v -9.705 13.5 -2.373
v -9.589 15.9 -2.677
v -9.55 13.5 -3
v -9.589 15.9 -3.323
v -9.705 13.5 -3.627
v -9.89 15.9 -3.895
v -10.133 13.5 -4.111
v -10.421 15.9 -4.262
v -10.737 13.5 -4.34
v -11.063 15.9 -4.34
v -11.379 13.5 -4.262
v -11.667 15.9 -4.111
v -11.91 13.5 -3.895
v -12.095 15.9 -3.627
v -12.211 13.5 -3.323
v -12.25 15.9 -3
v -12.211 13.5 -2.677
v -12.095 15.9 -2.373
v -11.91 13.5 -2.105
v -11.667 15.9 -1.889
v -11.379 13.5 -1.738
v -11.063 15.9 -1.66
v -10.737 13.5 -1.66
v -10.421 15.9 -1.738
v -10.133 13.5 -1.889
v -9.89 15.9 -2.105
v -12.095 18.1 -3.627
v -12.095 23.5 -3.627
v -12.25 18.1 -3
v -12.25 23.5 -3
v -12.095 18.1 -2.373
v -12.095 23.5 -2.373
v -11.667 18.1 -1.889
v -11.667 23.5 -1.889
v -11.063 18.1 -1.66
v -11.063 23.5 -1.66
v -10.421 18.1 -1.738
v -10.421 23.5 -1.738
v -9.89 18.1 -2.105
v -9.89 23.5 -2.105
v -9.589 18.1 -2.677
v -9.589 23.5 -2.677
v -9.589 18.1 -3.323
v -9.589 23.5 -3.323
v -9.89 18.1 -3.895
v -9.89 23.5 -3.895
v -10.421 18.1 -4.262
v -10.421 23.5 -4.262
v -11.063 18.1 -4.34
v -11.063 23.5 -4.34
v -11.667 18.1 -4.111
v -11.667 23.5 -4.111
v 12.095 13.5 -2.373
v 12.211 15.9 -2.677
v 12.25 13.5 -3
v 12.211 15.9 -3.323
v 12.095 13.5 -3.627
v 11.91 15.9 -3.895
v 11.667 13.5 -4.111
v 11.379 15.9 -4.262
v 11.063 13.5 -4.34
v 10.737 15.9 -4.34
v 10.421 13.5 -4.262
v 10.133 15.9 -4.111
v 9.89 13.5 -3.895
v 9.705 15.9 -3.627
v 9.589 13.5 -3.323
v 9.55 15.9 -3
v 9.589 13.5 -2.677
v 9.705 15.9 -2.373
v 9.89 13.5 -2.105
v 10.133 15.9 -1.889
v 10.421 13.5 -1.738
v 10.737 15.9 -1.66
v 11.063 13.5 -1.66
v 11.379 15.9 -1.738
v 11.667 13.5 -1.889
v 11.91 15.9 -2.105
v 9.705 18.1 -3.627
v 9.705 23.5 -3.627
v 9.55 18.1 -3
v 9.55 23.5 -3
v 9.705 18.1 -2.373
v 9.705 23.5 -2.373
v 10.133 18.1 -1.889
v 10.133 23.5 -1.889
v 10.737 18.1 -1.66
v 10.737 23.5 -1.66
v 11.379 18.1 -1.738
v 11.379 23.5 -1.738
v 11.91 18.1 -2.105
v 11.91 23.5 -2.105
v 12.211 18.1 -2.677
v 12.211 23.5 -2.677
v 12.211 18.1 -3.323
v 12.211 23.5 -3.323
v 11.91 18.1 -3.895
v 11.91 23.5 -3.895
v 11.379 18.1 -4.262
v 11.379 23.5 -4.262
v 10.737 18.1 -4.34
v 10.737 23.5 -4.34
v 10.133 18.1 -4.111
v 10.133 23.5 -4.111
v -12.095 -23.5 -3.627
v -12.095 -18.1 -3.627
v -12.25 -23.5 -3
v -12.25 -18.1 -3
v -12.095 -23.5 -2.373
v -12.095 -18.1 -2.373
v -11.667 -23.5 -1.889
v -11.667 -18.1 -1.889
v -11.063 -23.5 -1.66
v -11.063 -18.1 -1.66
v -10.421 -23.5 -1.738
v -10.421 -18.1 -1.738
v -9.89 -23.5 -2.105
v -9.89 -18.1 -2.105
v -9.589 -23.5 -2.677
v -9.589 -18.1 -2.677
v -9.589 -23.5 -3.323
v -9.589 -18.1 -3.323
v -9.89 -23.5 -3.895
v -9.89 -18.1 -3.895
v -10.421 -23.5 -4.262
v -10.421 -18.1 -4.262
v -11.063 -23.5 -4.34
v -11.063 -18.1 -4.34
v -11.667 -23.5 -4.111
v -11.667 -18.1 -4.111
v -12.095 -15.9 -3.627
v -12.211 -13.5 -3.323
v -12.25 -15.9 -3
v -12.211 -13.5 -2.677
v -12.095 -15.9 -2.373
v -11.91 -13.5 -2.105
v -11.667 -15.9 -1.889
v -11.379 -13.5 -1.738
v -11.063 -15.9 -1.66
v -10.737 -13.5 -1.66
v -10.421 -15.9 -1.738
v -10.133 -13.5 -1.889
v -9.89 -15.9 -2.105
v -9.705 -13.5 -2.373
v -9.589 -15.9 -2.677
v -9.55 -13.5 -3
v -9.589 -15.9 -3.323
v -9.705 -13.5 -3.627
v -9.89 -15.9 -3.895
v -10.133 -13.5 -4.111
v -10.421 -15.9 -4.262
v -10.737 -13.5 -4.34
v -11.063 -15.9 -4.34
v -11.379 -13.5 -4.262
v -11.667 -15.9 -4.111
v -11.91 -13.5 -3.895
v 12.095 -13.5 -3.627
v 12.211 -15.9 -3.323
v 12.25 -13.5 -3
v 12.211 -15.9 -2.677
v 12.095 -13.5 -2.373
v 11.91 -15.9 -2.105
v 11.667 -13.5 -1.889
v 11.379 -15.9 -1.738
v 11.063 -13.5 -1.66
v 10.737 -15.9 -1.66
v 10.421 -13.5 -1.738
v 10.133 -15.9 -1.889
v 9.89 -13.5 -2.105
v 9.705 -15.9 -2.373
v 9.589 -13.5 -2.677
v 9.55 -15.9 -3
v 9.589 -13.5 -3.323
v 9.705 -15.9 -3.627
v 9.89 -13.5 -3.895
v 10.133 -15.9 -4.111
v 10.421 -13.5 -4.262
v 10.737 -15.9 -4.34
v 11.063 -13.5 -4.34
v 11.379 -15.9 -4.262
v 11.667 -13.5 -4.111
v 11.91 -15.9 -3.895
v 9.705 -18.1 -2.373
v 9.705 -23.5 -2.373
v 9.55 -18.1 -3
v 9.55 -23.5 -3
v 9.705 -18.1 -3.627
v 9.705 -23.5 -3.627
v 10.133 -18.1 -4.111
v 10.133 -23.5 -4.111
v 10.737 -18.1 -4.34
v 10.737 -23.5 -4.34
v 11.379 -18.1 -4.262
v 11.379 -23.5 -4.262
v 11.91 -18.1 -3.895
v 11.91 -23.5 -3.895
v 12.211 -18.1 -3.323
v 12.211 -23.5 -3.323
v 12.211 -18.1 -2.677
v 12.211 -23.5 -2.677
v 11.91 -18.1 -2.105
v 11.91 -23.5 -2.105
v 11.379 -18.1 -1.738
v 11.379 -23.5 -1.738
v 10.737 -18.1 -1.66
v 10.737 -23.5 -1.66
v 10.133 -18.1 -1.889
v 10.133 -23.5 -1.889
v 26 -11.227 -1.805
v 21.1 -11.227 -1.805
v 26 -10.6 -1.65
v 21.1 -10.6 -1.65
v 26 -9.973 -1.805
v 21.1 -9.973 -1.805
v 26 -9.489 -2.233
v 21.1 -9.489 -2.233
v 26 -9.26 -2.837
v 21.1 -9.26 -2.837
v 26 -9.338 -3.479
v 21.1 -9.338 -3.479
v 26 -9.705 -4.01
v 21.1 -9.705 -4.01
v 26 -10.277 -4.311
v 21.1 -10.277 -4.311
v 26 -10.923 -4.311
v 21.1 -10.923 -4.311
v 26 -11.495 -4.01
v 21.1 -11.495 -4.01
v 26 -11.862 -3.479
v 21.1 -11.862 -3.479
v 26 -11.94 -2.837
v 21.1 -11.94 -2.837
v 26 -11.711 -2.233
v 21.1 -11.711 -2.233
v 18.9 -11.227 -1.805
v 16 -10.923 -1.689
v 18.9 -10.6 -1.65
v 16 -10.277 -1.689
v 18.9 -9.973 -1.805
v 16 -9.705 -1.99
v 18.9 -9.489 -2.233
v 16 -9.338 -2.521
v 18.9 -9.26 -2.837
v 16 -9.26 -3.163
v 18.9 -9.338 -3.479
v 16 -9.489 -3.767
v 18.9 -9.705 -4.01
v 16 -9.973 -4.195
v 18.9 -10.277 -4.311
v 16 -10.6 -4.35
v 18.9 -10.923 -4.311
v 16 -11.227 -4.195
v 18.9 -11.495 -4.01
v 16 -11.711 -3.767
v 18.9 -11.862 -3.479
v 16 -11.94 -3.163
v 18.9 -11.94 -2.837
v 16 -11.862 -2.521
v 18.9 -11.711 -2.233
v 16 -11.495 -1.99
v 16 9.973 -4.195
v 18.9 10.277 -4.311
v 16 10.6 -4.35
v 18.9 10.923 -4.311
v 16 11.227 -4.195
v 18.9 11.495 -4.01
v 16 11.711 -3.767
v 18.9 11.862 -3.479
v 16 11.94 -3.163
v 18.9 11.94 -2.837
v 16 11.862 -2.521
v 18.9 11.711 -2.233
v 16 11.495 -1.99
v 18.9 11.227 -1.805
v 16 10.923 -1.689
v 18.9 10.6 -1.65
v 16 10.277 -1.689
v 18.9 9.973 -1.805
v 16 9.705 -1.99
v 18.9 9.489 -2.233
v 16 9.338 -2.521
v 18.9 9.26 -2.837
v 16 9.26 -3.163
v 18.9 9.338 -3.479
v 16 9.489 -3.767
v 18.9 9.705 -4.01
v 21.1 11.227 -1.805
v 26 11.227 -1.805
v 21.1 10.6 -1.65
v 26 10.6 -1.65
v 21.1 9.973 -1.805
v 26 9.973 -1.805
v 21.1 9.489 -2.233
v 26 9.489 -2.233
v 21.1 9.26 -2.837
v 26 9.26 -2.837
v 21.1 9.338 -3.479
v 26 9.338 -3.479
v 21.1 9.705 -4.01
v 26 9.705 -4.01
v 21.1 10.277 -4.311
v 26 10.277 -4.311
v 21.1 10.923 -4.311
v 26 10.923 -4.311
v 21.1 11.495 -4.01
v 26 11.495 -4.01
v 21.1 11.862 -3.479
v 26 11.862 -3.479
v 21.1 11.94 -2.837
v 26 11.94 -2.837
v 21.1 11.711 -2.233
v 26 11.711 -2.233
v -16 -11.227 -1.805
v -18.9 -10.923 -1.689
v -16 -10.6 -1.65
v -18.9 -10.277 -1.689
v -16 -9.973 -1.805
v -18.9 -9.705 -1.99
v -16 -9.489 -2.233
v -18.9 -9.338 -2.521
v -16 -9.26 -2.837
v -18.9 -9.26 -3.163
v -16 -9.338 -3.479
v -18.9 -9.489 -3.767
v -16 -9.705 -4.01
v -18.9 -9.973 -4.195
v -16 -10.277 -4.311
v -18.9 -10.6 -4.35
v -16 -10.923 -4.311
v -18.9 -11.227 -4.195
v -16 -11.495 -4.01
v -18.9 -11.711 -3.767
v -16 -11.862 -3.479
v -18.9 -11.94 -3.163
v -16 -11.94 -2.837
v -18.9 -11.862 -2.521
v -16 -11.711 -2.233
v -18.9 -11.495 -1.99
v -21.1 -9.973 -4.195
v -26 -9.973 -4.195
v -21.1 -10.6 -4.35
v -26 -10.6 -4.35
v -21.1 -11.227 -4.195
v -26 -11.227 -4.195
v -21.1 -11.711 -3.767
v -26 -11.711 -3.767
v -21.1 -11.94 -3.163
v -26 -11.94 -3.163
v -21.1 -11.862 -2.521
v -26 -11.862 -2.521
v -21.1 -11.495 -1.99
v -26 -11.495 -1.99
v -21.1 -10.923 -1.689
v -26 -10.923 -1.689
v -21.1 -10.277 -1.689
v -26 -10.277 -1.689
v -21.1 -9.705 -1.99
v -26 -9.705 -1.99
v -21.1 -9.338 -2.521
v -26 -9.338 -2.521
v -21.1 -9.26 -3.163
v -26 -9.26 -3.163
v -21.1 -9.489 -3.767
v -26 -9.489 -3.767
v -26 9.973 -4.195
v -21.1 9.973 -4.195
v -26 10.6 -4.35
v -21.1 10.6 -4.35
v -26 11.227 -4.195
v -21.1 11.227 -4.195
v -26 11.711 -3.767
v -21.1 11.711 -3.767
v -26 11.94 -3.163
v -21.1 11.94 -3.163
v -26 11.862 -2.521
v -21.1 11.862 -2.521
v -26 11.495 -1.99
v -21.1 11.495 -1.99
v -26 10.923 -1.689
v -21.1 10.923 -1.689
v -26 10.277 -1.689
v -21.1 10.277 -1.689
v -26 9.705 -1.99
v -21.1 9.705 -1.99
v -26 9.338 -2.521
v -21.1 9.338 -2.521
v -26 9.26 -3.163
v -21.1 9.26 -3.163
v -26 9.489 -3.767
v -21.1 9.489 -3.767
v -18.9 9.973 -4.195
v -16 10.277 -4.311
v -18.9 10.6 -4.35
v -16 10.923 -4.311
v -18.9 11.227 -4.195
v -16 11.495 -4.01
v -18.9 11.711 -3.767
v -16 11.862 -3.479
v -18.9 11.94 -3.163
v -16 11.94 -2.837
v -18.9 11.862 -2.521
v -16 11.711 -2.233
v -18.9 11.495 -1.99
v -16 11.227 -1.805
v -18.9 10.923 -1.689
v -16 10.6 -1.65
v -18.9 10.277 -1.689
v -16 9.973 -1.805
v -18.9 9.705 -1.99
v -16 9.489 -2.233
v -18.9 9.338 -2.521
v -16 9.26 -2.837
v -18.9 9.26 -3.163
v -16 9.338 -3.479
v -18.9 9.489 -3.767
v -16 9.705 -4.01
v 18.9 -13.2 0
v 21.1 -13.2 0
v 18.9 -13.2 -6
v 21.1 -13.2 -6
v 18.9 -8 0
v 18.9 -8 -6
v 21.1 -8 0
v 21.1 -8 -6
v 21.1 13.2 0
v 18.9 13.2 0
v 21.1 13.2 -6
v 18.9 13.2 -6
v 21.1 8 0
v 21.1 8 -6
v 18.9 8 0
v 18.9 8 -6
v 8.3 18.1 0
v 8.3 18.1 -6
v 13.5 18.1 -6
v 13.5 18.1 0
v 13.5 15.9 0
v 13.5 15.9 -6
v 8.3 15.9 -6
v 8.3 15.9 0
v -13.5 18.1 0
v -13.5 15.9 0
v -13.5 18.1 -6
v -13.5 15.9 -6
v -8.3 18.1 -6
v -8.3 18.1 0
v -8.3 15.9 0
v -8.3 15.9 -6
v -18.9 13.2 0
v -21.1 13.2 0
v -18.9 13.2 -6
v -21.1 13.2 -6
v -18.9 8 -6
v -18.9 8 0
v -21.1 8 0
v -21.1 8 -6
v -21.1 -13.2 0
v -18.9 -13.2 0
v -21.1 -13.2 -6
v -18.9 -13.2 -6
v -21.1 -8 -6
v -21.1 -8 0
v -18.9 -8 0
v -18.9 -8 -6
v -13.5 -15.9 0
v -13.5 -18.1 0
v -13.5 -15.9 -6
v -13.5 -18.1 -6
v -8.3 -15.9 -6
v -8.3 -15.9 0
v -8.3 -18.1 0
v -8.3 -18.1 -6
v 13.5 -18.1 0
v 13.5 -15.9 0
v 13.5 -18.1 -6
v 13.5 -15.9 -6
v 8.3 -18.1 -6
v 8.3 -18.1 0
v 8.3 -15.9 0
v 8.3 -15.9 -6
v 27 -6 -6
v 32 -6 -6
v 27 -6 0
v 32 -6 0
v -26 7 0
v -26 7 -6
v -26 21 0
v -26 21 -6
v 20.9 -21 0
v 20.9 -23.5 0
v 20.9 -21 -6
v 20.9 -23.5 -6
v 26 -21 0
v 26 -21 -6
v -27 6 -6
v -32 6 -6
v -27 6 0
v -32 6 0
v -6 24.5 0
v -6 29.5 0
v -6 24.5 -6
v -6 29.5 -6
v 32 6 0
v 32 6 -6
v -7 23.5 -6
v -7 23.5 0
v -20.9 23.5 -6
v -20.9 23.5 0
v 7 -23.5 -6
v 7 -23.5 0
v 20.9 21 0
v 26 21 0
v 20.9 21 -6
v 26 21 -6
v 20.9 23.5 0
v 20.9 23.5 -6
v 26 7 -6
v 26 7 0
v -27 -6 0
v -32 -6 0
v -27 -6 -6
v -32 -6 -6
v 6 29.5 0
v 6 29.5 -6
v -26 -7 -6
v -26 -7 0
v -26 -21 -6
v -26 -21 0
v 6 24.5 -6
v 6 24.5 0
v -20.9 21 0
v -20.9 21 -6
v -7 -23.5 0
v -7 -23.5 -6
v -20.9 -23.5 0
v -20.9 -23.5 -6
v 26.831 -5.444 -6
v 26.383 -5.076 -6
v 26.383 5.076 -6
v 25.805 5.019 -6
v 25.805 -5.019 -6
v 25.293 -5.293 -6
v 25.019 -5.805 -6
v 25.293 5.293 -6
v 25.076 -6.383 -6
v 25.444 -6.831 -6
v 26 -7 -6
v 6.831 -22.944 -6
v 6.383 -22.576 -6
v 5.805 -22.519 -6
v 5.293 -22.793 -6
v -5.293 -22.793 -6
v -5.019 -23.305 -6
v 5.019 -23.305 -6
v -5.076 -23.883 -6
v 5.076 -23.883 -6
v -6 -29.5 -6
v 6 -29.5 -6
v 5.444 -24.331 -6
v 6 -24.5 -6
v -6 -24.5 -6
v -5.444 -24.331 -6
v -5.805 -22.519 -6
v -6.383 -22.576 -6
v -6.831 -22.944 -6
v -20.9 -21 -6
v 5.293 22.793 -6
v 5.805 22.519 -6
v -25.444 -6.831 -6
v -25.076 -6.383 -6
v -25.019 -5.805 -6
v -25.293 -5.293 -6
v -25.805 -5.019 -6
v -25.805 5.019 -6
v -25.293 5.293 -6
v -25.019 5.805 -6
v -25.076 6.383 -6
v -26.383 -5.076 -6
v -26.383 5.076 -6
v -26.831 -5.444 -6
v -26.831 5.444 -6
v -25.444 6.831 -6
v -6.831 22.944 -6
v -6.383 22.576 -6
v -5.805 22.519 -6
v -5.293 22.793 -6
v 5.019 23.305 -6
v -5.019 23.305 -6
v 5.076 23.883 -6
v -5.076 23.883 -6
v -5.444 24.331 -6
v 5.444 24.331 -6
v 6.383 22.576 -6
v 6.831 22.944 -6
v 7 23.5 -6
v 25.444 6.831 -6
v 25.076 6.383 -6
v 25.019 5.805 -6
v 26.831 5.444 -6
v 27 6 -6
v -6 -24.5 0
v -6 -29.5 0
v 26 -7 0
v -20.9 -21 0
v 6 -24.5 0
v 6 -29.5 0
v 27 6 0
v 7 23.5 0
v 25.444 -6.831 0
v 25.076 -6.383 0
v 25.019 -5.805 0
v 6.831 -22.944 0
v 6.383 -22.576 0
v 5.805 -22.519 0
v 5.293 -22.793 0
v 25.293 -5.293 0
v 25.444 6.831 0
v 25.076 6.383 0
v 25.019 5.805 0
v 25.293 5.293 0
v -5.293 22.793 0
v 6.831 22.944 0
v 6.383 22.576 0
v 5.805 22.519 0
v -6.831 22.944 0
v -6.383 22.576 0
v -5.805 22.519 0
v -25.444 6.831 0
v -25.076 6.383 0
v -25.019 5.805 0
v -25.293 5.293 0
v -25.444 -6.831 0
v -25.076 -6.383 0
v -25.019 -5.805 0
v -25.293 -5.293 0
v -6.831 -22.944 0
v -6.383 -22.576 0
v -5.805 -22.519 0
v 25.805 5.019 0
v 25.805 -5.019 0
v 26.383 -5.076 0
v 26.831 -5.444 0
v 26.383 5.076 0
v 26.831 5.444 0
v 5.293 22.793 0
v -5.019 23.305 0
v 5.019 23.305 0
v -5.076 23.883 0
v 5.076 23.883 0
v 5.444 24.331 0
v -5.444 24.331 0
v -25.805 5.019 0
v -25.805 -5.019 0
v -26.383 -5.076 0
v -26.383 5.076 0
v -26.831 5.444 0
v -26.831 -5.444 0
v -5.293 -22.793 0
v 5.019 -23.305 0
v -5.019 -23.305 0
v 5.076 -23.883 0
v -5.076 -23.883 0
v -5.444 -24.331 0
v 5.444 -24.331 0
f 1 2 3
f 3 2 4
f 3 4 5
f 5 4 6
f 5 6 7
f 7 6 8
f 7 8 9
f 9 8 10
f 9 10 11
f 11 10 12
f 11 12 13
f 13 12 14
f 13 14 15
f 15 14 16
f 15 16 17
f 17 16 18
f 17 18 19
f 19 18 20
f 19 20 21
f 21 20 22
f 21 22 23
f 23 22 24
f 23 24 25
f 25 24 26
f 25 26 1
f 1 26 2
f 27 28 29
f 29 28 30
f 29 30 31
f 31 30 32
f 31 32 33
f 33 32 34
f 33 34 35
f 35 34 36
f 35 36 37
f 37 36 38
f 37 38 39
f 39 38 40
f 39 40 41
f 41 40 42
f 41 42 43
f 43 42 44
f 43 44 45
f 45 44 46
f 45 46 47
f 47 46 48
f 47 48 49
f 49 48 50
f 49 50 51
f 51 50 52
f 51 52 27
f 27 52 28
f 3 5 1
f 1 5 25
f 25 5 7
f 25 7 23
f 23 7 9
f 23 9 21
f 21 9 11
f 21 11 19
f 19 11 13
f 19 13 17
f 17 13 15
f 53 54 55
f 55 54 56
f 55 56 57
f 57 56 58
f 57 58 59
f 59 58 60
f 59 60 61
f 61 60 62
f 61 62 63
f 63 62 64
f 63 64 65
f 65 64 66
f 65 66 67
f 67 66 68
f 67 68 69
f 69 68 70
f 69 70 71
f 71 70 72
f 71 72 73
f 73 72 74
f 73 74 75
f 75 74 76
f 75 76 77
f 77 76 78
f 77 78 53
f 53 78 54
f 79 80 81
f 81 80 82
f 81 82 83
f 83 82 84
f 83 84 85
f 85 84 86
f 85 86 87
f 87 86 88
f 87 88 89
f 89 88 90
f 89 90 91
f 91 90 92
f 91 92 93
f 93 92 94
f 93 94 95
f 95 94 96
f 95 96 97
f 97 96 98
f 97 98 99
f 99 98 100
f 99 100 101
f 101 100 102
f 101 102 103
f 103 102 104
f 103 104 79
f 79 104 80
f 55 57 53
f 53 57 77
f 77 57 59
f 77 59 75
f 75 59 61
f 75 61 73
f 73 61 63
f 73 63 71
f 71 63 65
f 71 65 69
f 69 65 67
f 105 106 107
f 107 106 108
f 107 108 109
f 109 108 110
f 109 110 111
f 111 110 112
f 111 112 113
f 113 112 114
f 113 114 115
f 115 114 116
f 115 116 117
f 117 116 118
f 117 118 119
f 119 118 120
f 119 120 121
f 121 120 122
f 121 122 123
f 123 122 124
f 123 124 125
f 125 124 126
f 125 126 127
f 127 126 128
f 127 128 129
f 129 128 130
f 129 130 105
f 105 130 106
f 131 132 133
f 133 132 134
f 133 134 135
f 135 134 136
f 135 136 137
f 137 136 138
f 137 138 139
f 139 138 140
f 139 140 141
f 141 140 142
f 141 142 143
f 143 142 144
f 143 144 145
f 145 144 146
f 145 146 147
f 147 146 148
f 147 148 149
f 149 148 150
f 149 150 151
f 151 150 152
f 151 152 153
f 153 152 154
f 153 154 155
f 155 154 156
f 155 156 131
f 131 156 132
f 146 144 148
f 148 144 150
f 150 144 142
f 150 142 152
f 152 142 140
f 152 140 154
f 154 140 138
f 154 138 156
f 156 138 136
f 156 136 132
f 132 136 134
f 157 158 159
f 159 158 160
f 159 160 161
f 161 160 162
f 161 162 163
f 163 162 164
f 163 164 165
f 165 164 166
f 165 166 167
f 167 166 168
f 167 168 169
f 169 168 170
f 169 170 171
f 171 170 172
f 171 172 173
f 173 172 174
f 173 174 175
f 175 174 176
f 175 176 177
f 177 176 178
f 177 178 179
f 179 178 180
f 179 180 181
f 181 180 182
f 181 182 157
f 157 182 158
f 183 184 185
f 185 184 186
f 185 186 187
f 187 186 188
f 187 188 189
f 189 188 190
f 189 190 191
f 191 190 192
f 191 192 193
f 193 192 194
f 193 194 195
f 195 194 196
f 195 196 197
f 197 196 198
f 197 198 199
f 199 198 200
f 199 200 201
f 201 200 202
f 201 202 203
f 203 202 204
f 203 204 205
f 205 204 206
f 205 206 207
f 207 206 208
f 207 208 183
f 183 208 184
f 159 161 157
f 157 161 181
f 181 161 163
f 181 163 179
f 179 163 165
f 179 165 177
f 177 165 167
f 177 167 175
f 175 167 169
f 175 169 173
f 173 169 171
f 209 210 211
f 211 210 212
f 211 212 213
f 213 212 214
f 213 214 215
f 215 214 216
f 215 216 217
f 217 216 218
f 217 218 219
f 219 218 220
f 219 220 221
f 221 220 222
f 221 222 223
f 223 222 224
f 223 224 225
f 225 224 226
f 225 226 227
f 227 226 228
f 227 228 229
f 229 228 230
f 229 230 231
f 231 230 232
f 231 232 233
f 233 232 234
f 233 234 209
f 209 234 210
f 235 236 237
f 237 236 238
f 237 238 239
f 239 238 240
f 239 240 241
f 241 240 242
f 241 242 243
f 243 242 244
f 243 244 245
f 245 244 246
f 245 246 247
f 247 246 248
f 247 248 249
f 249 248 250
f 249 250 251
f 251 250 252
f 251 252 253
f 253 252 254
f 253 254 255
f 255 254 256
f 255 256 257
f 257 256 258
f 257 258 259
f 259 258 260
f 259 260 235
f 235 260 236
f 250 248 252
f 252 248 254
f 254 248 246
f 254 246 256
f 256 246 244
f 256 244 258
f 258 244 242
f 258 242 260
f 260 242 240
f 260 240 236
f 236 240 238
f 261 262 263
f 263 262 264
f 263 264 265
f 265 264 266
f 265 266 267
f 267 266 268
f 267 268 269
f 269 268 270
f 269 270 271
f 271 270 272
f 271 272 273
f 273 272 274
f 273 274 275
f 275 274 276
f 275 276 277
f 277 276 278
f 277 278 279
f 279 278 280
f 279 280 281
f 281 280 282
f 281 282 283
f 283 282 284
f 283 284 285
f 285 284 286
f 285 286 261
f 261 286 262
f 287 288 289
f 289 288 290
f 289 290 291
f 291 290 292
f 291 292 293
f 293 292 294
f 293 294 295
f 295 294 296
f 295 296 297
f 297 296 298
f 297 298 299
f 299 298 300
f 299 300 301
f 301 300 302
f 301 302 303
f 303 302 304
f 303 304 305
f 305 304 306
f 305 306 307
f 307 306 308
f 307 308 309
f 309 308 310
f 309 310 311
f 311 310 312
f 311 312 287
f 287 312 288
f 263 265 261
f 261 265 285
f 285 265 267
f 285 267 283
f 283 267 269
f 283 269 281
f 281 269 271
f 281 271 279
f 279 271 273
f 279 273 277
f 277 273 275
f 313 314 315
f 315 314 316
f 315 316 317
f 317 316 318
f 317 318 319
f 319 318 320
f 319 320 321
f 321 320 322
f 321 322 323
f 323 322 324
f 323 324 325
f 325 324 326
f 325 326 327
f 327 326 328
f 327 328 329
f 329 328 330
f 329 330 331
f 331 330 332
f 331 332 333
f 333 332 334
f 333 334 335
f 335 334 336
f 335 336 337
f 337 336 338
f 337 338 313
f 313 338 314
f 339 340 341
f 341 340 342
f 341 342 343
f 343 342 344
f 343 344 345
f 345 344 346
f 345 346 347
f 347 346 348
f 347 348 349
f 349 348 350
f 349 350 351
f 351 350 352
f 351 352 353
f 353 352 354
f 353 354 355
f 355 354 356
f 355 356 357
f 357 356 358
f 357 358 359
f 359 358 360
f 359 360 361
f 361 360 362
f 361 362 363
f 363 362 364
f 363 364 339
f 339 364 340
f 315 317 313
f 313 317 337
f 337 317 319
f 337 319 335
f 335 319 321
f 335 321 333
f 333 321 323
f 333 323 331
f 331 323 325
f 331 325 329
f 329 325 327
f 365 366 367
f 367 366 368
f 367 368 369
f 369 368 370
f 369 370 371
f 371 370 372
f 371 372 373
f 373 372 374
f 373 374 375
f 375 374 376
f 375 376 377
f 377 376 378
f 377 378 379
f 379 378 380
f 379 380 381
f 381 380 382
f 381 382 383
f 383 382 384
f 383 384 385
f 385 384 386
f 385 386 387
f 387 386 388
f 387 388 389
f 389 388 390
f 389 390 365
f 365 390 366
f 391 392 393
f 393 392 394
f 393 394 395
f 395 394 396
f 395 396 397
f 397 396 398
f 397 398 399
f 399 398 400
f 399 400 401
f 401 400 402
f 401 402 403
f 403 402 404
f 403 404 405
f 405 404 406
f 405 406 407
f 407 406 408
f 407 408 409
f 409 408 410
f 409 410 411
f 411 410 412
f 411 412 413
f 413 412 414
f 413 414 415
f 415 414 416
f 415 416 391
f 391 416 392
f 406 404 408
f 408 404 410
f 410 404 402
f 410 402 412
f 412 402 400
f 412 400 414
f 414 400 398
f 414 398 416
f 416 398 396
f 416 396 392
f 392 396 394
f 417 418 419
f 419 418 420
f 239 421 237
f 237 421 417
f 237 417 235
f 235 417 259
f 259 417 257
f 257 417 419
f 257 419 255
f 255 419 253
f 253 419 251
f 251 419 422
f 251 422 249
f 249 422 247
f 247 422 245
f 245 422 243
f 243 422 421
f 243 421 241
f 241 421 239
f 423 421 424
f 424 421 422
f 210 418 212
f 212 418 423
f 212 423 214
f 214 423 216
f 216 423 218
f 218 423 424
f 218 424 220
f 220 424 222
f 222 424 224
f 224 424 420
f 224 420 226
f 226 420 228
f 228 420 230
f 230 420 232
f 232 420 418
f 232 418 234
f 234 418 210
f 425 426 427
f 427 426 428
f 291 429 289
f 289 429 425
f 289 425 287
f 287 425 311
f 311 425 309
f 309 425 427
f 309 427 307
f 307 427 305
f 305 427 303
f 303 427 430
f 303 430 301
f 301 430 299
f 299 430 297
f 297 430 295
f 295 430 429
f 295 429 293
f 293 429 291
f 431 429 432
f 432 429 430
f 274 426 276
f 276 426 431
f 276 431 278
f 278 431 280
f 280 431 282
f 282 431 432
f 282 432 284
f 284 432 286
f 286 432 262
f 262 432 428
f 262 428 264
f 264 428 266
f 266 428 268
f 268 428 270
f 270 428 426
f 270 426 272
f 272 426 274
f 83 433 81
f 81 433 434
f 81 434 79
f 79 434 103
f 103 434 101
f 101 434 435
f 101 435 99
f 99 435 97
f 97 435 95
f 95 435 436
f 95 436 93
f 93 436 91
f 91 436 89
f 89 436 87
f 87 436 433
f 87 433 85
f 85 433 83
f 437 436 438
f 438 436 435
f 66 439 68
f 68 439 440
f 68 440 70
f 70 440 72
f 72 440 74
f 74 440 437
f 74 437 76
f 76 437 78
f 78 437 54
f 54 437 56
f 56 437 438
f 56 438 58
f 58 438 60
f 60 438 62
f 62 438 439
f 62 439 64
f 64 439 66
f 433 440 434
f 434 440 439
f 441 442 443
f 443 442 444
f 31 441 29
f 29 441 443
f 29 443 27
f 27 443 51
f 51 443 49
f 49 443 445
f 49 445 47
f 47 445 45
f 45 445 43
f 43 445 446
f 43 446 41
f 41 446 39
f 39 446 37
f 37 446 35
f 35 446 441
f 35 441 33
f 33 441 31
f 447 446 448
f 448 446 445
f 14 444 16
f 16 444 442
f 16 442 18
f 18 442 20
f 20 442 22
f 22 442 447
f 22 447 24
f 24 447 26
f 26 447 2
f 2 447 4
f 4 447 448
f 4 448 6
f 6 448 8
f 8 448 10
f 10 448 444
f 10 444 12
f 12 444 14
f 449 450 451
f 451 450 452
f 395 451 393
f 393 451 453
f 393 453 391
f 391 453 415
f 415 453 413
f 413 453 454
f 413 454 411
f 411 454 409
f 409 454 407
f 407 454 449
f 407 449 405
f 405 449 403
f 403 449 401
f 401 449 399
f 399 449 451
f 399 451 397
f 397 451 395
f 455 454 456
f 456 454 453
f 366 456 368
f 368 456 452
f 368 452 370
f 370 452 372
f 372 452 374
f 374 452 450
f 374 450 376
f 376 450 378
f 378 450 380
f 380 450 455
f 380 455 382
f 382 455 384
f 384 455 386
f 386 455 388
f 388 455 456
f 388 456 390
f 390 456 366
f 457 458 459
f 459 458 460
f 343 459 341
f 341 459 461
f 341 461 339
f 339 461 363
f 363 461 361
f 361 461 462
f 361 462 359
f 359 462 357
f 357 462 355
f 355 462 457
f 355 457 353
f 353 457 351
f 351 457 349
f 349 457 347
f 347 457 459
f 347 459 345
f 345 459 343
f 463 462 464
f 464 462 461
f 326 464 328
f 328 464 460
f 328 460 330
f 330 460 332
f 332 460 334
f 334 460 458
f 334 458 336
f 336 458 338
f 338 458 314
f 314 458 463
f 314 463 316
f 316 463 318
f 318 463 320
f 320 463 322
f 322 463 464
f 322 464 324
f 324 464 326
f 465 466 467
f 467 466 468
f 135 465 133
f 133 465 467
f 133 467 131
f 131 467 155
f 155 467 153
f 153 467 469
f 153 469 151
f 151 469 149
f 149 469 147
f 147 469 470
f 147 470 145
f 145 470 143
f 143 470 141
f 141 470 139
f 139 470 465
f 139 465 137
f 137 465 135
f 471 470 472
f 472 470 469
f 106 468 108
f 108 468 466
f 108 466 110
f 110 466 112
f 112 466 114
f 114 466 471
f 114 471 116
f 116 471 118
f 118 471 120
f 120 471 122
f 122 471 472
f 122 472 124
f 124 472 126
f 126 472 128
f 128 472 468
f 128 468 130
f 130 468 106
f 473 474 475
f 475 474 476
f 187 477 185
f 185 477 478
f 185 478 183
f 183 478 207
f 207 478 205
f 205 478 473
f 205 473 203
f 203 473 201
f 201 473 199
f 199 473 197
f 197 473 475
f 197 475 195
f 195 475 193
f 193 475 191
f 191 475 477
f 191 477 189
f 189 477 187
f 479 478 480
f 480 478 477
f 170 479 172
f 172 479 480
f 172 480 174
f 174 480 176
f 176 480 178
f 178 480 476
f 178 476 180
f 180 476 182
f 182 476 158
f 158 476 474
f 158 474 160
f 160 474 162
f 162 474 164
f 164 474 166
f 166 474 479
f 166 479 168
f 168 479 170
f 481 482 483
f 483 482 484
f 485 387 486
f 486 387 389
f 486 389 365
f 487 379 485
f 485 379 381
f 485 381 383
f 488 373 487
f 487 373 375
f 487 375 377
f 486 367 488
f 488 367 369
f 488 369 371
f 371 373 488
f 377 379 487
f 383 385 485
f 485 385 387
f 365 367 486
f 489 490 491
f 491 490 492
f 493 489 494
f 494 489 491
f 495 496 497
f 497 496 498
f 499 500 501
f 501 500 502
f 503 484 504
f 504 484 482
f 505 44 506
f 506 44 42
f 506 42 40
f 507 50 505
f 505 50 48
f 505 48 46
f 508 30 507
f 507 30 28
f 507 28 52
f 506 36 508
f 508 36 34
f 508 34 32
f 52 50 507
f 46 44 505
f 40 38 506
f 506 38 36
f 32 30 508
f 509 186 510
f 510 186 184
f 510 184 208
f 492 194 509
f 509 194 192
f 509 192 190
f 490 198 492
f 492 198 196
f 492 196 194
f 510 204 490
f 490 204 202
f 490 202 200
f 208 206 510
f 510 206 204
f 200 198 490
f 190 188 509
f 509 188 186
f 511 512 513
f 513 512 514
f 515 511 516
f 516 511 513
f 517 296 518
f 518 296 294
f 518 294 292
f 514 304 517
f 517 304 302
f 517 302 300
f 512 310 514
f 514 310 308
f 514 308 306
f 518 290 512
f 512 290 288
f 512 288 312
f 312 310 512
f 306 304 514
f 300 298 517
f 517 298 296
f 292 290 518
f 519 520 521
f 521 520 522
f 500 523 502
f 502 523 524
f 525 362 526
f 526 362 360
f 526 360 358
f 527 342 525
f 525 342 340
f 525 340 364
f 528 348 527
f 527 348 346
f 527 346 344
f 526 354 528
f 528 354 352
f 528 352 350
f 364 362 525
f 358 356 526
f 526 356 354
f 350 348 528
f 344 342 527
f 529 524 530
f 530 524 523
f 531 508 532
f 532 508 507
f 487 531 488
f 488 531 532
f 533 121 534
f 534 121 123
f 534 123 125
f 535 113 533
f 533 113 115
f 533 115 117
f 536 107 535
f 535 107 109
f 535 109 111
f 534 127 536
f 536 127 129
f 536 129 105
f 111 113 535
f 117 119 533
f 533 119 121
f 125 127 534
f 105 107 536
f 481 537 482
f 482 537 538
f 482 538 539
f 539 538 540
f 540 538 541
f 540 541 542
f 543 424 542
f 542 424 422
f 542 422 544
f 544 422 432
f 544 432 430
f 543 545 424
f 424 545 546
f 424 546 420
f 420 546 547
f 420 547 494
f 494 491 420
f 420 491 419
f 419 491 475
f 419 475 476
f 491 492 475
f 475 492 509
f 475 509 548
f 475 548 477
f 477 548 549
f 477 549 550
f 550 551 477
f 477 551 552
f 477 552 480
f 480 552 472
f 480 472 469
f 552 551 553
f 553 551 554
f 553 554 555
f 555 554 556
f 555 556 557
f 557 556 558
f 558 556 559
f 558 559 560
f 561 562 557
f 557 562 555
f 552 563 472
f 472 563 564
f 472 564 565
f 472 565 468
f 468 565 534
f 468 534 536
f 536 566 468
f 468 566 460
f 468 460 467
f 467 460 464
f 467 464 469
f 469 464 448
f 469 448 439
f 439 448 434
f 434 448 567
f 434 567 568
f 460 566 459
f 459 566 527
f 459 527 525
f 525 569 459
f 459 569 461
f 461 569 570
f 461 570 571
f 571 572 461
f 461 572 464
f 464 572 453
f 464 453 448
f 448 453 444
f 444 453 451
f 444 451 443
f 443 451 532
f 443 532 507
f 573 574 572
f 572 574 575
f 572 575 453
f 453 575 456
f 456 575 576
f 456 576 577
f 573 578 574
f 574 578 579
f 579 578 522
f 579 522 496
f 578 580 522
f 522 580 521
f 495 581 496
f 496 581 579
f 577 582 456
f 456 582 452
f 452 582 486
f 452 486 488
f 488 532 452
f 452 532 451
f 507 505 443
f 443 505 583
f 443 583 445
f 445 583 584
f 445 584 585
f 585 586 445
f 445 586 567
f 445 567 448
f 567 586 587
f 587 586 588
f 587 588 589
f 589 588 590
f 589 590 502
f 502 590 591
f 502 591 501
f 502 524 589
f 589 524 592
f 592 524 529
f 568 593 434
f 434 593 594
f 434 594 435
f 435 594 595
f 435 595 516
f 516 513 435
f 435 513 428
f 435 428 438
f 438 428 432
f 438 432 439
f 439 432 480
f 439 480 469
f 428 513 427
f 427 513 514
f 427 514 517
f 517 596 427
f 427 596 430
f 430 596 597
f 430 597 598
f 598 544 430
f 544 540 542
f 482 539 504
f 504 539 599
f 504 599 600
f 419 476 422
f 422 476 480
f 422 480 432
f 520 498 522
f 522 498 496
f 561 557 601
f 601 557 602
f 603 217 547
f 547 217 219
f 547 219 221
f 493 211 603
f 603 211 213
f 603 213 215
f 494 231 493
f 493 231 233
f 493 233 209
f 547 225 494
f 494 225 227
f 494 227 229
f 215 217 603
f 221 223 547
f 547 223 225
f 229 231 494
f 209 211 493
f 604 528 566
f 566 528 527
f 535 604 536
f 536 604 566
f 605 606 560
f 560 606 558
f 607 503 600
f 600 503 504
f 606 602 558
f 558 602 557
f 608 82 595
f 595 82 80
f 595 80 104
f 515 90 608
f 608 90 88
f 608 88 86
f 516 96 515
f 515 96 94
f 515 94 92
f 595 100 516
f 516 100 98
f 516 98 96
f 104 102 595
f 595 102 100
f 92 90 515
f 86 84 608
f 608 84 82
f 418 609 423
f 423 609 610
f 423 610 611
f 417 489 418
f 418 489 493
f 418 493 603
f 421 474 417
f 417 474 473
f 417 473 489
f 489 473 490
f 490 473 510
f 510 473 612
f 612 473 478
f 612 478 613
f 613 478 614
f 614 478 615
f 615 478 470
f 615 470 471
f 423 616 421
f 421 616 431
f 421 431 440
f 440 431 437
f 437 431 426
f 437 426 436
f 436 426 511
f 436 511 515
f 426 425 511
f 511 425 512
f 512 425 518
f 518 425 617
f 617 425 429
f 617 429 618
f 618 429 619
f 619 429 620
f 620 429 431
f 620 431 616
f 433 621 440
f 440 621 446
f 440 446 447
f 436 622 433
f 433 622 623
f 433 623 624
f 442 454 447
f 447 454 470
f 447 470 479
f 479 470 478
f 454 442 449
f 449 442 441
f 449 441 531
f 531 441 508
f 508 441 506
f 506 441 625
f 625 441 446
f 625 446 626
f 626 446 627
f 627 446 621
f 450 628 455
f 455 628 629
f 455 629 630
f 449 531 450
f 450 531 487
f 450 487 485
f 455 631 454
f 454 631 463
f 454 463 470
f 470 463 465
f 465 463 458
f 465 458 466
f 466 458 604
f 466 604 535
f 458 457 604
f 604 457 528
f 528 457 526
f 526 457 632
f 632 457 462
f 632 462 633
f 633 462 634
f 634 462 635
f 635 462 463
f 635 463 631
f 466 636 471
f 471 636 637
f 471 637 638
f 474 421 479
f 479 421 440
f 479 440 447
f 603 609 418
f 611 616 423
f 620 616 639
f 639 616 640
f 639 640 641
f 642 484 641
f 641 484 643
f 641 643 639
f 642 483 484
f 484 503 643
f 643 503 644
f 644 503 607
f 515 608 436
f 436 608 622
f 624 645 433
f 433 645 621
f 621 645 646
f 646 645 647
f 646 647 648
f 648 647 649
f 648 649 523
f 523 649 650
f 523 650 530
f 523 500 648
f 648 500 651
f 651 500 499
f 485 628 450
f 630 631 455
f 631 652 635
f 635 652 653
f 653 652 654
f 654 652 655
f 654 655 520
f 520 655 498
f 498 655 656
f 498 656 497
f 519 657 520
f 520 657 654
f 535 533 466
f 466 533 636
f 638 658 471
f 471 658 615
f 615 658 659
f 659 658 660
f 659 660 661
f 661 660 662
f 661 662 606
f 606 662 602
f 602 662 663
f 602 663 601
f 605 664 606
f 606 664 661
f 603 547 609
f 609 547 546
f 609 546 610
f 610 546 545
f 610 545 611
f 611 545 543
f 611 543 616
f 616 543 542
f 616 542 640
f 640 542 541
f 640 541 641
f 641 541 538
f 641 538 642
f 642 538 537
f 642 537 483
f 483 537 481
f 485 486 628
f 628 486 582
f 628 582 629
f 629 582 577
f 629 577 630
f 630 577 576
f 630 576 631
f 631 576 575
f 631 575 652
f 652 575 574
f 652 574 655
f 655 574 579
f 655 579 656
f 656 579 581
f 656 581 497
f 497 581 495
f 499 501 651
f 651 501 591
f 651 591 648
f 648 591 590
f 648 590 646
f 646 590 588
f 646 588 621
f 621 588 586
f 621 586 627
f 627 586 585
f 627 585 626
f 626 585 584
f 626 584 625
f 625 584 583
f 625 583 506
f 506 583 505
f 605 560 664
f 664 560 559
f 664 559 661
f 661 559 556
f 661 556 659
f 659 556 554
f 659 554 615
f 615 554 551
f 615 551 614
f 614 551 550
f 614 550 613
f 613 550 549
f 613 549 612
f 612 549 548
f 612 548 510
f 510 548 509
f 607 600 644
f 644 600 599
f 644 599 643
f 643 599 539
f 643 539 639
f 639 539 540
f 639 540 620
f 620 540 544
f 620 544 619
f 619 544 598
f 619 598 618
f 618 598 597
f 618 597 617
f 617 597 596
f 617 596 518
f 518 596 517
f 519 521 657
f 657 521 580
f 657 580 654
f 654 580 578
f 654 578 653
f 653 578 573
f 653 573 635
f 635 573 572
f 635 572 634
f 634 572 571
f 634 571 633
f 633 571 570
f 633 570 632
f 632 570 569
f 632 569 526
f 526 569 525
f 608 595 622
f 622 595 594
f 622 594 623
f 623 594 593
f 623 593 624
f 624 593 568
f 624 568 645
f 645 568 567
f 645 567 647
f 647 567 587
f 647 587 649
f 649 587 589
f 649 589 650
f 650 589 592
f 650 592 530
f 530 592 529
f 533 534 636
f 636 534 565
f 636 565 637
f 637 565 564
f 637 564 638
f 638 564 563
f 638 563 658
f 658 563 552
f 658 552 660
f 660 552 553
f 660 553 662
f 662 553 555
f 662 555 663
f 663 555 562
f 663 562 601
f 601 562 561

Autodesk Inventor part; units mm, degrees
ref_plane "YZ Plane" through (0, 0, 0) normal (1, 0, 0) x (0, 1, 0)
ref_plane "XZ Plane" through (0, 0, 0) normal (0, 1, 0) x (-1, 0, 0)
ref_plane "XY Plane" through (0, 0, 0) normal (0, 0, 1) x (1, 0, 0)
ref_plane "작업 평면1" through (0, 0, 0) normal (0, 0, 1) x (1, 0, 0)
sketch "스케치1" plane through (0, 0, 0) normal (0, 0, 1) x (1, 0, 0)
  line L0 (-18.9, 5.4) -> (-21.1, 5.4) projected
  line L1 (-21.1, 5.4) -> (-21.1, 10.6) projected
  line L2 (-21.1, 10.6) -> (-18.9, 10.6) projected
  line L3 (-18.9, 10.6) -> (-18.9, 5.4) projected
  line L4 (-21.1, -5.4) -> (-18.9, -5.4) projected
  line L5 (-18.9, -5.4) -> (-18.9, -10.6) projected
  line L6 (-18.9, -10.6) -> (-21.1, -10.6) projected
  line L7 (-21.1, -10.6) -> (-21.1, -5.4) projected
  line L8 (21.1, 5.4) -> (18.9, 5.4) projected
  line L9 (18.9, 5.4) -> (18.9, 10.6) projected
  line L10 (18.9, 10.6) -> (21.1, 10.6) projected
  line L11 (21.1, 10.6) -> (21.1, 5.4) projected
  line L12 (18.9, -10.6) -> (18.9, -5.4) projected
  line L13 (18.9, -5.4) -> (21.1, -5.4) projected
  line L14 (21.1, -5.4) -> (21.1, -10.6) projected
  line L15 (21.1, -10.6) -> (18.9, -10.6) projected
  circle A0 centre (8, -8) radius 1.35 projected
  circle A1 centre (-8, 8) radius 1.35 projected
  circle A2 centre (-8, -8) radius 1.35 projected
  circle A3 centre (8, 8) radius 1.35 projected
  line L16 (-26, 14) -> (-26, 3) projected
  line L17 (-26, 3) -> (-32, 3) projected
  line L18 (-32, 3) -> (-32, -3) projected
  line L19 (-32, -3) -> (-26, -3) projected
  line L20 (-26, -3) -> (-26, -14) projected
  line L21 (-26, -14) -> (26, -14) projected
  line L22 (26, -14) -> (26, -3) projected
  line L23 (26, -3) -> (32, -3) projected
  line L24 (32, -3) -> (32, 3) projected
  line L25 (32, 3) -> (26, 3) projected
  line L26 (26, 3) -> (26, 14) projected
  line L27 (26, 14) -> (-26, 14) projected
  line L28 (-11, -15.5) -> (-5, -15.5) projected
  line L29 (-5, -15.5) -> (-5, -18.5) projected
  line L30 (-5, -18.5) -> (-11, -18.5) projected
  line L31 (-11, -18.5) -> (-11, -15.5) projected
  line L32 (-5, 15.5) -> (-11, 15.5) projected
  line L33 (-11, 15.5) -> (-11, 18.5) projected
  line L34 (-11, 18.5) -> (-5, 18.5) projected
  line L35 (-5, 18.5) -> (-5, 15.5) projected
  line L36 (11, -18.5) -> (5, -18.5) projected
  line L37 (5, -18.5) -> (5, -15.5) projected
  line L38 (5, -15.5) -> (11, -15.5) projected
  line L39 (11, -15.5) -> (11, -18.5) projected
  line L40 (11, 15.0547) -> (5, 15.0547) projected
  line L41 (5, 15.0547) -> (5, 18.0547) projected
  line L42 (5, 18.0547) -> (11, 18.0547) projected
  line L43 (11, 18.0547) -> (11, 15.0547) projected
  circle A4 centre (8, 8) radius 1.35 projected
  circle A5 centre (-8, -8) radius 1.35 projected
  circle A6 centre (-8, 8) radius 1.35 projected
  circle A7 centre (8, -8) radius 1.35 projected
  line L44 (13.9, 23.5) -> (3, 23.5) projected
  line L45 (3, 23.5) -> (3, 29.5) projected
  line L46 (3, 29.5) -> (-3, 29.5) projected
  line L47 (-3, 29.5) -> (-3, 23.5) projected
  line L48 (-3, 23.5) -> (-13.9, 23.5) projected
  line L49 (-13.9, 23.5) -> (-13.9, -23.5) projected
  line L50 (-13.9, -23.5) -> (-3, -23.5) projected
  line L51 (-3, -23.5) -> (-3, -29.5) projected
  line L52 (-3, -29.5) -> (3, -29.5) projected
  line L53 (3, -29.5) -> (3, -23.5) projected
  line L54 (3, -23.5) -> (13.9, -23.5) projected
  line L55 (13.9, -23.5) -> (13.9, 23.5) projected
  line L56 (13.9, 23.5) -> (-13.9, 23.5)
  line L57 (-13.9, -23.5) -> (13.9, -23.5)
  line L58 (-26, 14) -> (-26, -14)
  line L59 (26, -14) -> (26, 14)
  line L60 (-26, -14) -> (-26, -21)
  line L61 (26, -21) -> (26, -14)
  line L62 (26, 14) -> (26, 21)
  line L63 (-26, 21) -> (-26, 14)
  line L64 (13.9, -23.5) -> (20.9, -23.5)
  line L65 (20.9, 23.5) -> (13.9, 23.5)
  line L66 (-13.9, 23.5) -> (-20.9, 23.5)
  line L67 (-20.9, -23.5) -> (-13.9, -23.5)
  line L68 (26, 21) -> (20.9, 21)
  line L69 (-20.9, 21) -> (-26, 21)
  line L70 (-20.9, -21) -> (-20.9, -23.5)
  line L71 (-20.9, 23.5) -> (-20.9, 21)
  line L72 (20.9, -23.5) -> (20.9, -21)
  line L73 (20.9, 21) -> (20.9, 23.5)
  line L74 (-26, -21) -> (-20.9, -21)
  line L75 (20.9, -21) -> (26, -21)
  line L76 (26, -5.994) -> (26, 6.006)
  line L77 (6, -23.5) -> (-6, -23.5)
  line L78 (-6, -23.5) -> (-6, -29.5)
  line L79 (-6, -29.5) -> (6, -29.5)
  line L80 (6, -29.5) -> (6, -23.5)
  line L81 (6, 23.5) -> (-6, 23.5)
  line L82 (-6, 23.5) -> (-6, 29.5)
  line L83 (-6, 29.5) -> (6, 29.5)
  line L84 (6, 29.5) -> (6, 23.5)
  line L85 (-26, 6) -> (-32, 6)
  line L86 (-32, 6) -> (-32, -6)
  line L87 (-32, -6) -> (-26, -6)
  line L88 (-26, -6) -> (-26, 6)
  line L89 (13.5, 18.1) -> (8.3, 18.1)
  line L90 (8.3, 18.1) -> (8.3, 15.9)
  line L91 (8.3, 15.9) -> (13.5, 15.9)
  line L92 (13.5, 15.9) -> (13.5, 18.1)
  line L93 (13.5, 18.1) -> (8.3, 15.9) construction
  line L94 (8.3, 18.1) -> (13.5, 15.9) construction
  line L95 (-13.5, 18.1) -> (-8.3, 18.1)
  line L96 (-8.3, 18.1) -> (-8.3, 15.9)
  line L97 (-8.3, 15.9) -> (-13.5, 15.9)
  line L98 (-13.5, 15.9) -> (-13.5, 18.1)
  line L99 (-13.5, 18.1) -> (-8.3, 15.9) construction
  line L100 (-8.3, 18.1) -> (-13.5, 15.9) construction
  line L101 (-13.5, -18.1) -> (-8.3, -18.1)
  line L102 (-8.3, -18.1) -> (-8.3, -15.9)
  line L103 (-8.3, -15.9) -> (-13.5, -15.9)
  line L104 (-13.5, -15.9) -> (-13.5, -18.1)
  line L105 (-13.5, -18.1) -> (-8.3, -15.9) construction
  line L106 (-8.3, -18.1) -> (-13.5, -15.9) construction
  line L107 (13.5, -15.9) -> (8.3, -15.9)
  line L108 (8.3, -15.9) -> (8.3, -18.1)
  line L109 (8.3, -18.1) -> (13.5, -18.1)
  line L110 (13.5, -18.1) -> (13.5, -15.9)
  line L111 (13.5, -15.9) -> (8.3, -18.1) construction
  line L112 (8.3, -15.9) -> (13.5, -18.1) construction
  line L113 (-21.1, -8) -> (-18.9, -8)
  line L114 (-18.9, -8) -> (-18.9, -13.2)
  line L115 (-18.9, -13.2) -> (-21.1, -13.2)
  line L116 (-21.1, -13.2) -> (-21.1, -8)
  line L117 (-21.1, -8) -> (-18.9, -13.2) construction
  line L118 (-18.9, -8) -> (-21.1, -13.2) construction
  line L119 (-21.1, 13.2) -> (-18.9, 13.2)
  line L120 (-18.9, 13.2) -> (-18.9, 8)
  line L121 (-18.9, 8) -> (-21.1, 8)
  line L122 (-21.1, 8) -> (-21.1, 13.2)
  line L123 (-21.1, 13.2) -> (-18.9, 8) construction
  line L124 (-18.9, 13.2) -> (-21.1, 8) construction
  line L125 (26, -5.994) -> (26, 6.006)
  line L126 (26, 6) -> (32, 6)
  line L127 (32, 6) -> (32, -6)
  line L128 (32, -6) -> (26, -6)
  line L129 (26, -6) -> (26, 6)
  line L130 (18.9, -8) -> (21.1, -8)
  line L131 (21.1, -8) -> (21.1, -13.2)
  line L132 (21.1, -13.2) -> (18.9, -13.2)
  line L133 (18.9, -13.2) -> (18.9, -8)
  line L134 (18.9, -8) -> (21.1, -13.2) construction
  line L135 (21.1, -8) -> (18.9, -13.2) construction
  line L136 (18.9, 13.2) -> (21.1, 13.2)
  line L137 (21.1, 13.2) -> (21.1, 8)
  line L138 (21.1, 8) -> (18.9, 8)
  line L139 (18.9, 8) -> (18.9, 13.2)
  line L140 (18.9, 13.2) -> (21.1, 8) construction
  line L141 (21.1, 13.2) -> (18.9, 8) construction
  point P0 (0, 0)
  point P1 (10.9, 17)
  point P2 (-10.9, 17)
  point P3 (-10.9, -17)
  point P4 (10.9, -17)
  point P5 (-20, -10.6)
  point P6 (-20, 10.6)
  point P7 (8.3, 18.0547)
  point P8 (11, 15.9)
  point P9 (-13.9, -14)
  point P10 (13.9, -14)
  point P11 (20, -10.6)
  point P12 (20, 10.6)
  dimension "d0" = 7
  dimension "d1" = 7
  dimension "d2" = 7
  dimension "d5" = 12
  dimension "d6" = 6
  dimension "d7" = 12
  dimension "d8" = 6
  dimension "d9" = 12
  dimension "d31" = 5.2
  dimension "d33" = 5.2
  dimension "d34" = 2.2
  dimension "d35" = 5.2
  dimension "d36" = 2.2
  dimension "d37" = 5.2
  dimension "d38" = 2.2
  dimension "d41" = 2.2
  dimension "d42" = 5.2
  dimension "d44" = 2.2
  dimension "d45" = 5.2
  dimension "d69" = 12
  dimension "d70" = 5.2
  dimension "d71" = 2.2
  dimension "d72" = 5.2
extrude "돌출9" add sketch "스케치1" against normal blind 6 contours L0 L1 L121 L3 | L4 L5 L113 L7 | L8 L9 L138 L11 | L12 L13 L14 L130 | A0 | A1 | A2 | A3 | L27 L49 L21 L20 L58 L16 | L63 L69 L71 L66 L49 L27 | L16 L17 L86 L85 | L49 L48 L56 L44 L55 L27 | L27 L55 L21 L49 | L58 L19 L18 L17 | L55 L65 L73 L68 L62 L27 | L27 L26 L59 L22 L21 L55 | L49 L67 L70 L74 L60 L21 | L21 L55 L54 L57 L50 L49 | L20 L87 L86 L19 | L21 L61 L75 L72 L64 L55 | L82 L83 L47 L48 | L44 L45 L83 L84 | L47 L46 L45 L56 | L50 L51 L79 L78 | L126 L127 L25 L26 | L22 L23 L127 L128 | L80 L79 L53 L54 | L57 L53 L52 L51 | L25 L24 L23 L59 | L28 L29 L30 L31 L101 L102 L103 | L32 L33 L97 L96 L95 L34 L35 | L36 L37 L38 L39 L107 L108 L109 | L40 L41 L42 L90 L91 L43
sketch "스케치7" plane through (-32, -6, 0) normal (-1, 0, 0) x (0, 0, 1)
  line L0 (0, 19.2) -> (0, 14)
  circle A0 centre (-3, 16.6) radius 1.35
  line L1 (0, -2) -> (0, -7.2)
  circle A1 centre (-3, -4.6) radius 1.35
  point P0 (0, 6)
  dimension "d75" = 2.7
  dimension "d76" = 2.7
extrude "돌출10" cut sketch "스케치7" against normal blind 16
sketch "스케치8" plane through (32, -6, 0) normal (1, 0, 0) x (0, 0, -1)
  line L0 (6, 19.2) -> (6, 14)
  line L1 (6, -2) -> (6, -7.2)
  circle A0 centre (3, 16.6) radius 1.35
  circle A1 centre (3, -4.6) radius 1.35
  point P0 (0, 6)
  dimension "d79" = 2.7
  dimension "d80" = 2.7
extrude "돌출11" cut sketch "스케치8" against normal blind 16
sketch "스케치9" plane through (-6, -29.5, 0) normal (0, -1, 0) x (1, 0, 0)
  line L0 (19.5, -6) -> (14.3, -6)
  line L1 (-2.3, -6) -> (-7.5, -6)
  circle A0 centre (16.9, -3) radius 1.35
  circle A1 centre (-4.9, -3) radius 1.35
  point P0 (6, 0)
  dimension "d83" = 2.7
  dimension "d84" = 2.7
extrude "돌출12" cut sketch "스케치9" against normal blind 16
sketch "스케치10" plane through (-6, 29.5, 0) normal (0, 1, 0) x (1, 0, 0)
  line L0 (19.5, 0) -> (14.3, 0)
  line L1 (-2.3, 0) -> (-7.5, 0)
  circle A0 centre (-4.9, 3) radius 1.35
  circle A1 centre (16.9, 3) radius 1.35
  point P0 (6, 0)
  dimension "d87" = 2.7
  dimension "d88" = 2.7
extrude "돌출13" cut sketch "스케치10" against normal blind 16
sketch "스케치11" plane through (0, 0, 0) normal (0, 0, 1) x (1, 0, 0)
  line L0 (-6, -29.5) -> (6, -29.5) projected
  line L1 (6, -29.5) -> (6, -23.5) projected
  line L2 (6, -23.5) -> (20.9, -23.5) projected
  line L3 (20.9, -23.5) -> (20.9, -21) projected
  line L4 (20.9, -21) -> (26, -21) projected
  line L5 (26, -21) -> (26, -6) projected
  line L6 (26, -6) -> (32, -6) projected
  line L7 (32, -6) -> (32, 6) projected
  line L8 (32, 6) -> (26, 6) projected
  line L9 (26, 6) -> (26, 21) projected
  line L10 (26, 21) -> (20.9, 21) projected
  line L11 (20.9, 21) -> (20.9, 23.5) projected
  line L12 (20.9, 23.5) -> (6, 23.5) projected
  line L13 (6, 23.5) -> (6, 29.5) projected
  line L14 (6, 29.5) -> (-6, 29.5) projected
  line L15 (-6, 29.5) -> (-6, 23.5) projected
  line L16 (-6, 23.5) -> (-20.9, 23.5) projected
  line L17 (-20.9, 23.5) -> (-20.9, 21) projected
  line L18 (-20.9, 21) -> (-26, 21) projected
  line L19 (-26, 21) -> (-26, 6) projected
  line L20 (-26, 6) -> (-32, 6) projected
  line L21 (-32, 6) -> (-32, -6) projected
  line L22 (-32, -6) -> (-26, -6) projected
  line L23 (-26, -6) -> (-26, -21) projected
  line L24 (-26, -21) -> (-20.9, -21) projected
  line L25 (-20.9, -21) -> (-20.9, -23.5) projected
  line L26 (-20.9, -23.5) -> (-6, -23.5) projected
  line L27 (-6, -23.5) -> (-6, -29.5) projected
  line L28 (8.3, -15.9) -> (13.5, -15.9) projected
  line L29 (13.5, -15.9) -> (13.5, -18.1) projected
  line L30 (13.5, -18.1) -> (8.3, -18.1) projected
  line L31 (8.3, -18.1) -> (8.3, -15.9) projected
  line L32 (-8.3, -18.1) -> (-13.5, -18.1) projected
  line L33 (-13.5, -18.1) -> (-13.5, -15.9) projected
  line L34 (-13.5, -15.9) -> (-8.3, -15.9) projected
  line L35 (-8.3, -15.9) -> (-8.3, -18.1) projected
  line L36 (-18.9, -8) -> (-18.9, -13.2) projected
  line L37 (-18.9, -13.2) -> (-21.1, -13.2) projected
  line L38 (-21.1, -13.2) -> (-21.1, -8) projected
  line L39 (-21.1, -8) -> (-18.9, -8) projected
  line L40 (-21.1, 8) -> (-21.1, 13.2) projected
  line L41 (-21.1, 13.2) -> (-18.9, 13.2) projected
  line L42 (-18.9, 13.2) -> (-18.9, 8) projected
  line L43 (-18.9, 8) -> (-21.1, 8) projected
  line L44 (-8.3, 15.9) -> (-13.5, 15.9) projected
  line L45 (-13.5, 15.9) -> (-13.5, 18.1) projected
  line L46 (-13.5, 18.1) -> (-8.3, 18.1) projected
  line L47 (-8.3, 18.1) -> (-8.3, 15.9) projected
  line L48 (8.3, 15.9) -> (8.3, 18.1) projected
  line L49 (8.3, 18.1) -> (13.5, 18.1) projected
  line L50 (13.5, 18.1) -> (13.5, 15.9) projected
  line L51 (13.5, 15.9) -> (8.3, 15.9) projected
  line L52 (18.9, 8) -> (18.9, 13.2) projected
  line L53 (18.9, 13.2) -> (21.1, 13.2) projected
  line L54 (21.1, 13.2) -> (21.1, 8) projected
  line L55 (21.1, 8) -> (18.9, 8) projected
  line L56 (21.1, -8) -> (21.1, -13.2) projected
  line L57 (21.1, -13.2) -> (18.9, -13.2) projected
  line L58 (18.9, -13.2) -> (18.9, -8) projected
  line L59 (18.9, -8) -> (21.1, -8) projected
  circle A0 centre (26, 6) radius 1
  circle A1 centre (26, -6) radius 1
  circle A2 centre (6, -23.5) radius 1
  circle A3 centre (-6, -23.5) radius 1
  circle A4 centre (-26, -6) radius 1
  circle A5 centre (-26, 6) radius 1
  circle A6 centre (-6, 23.5) radius 1
  circle A7 centre (6, 23.5) radius 1
  point P0 (0, 0)
  dimension "d91" = 2
  dimension "d92" = 2
  dimension "d93" = 2
  dimension "d94" = 2
  dimension "d95" = 2
  dimension "d96" = 2
  dimension "d97" = 2
  dimension "d98" = 2
extrude "돌출14" cut sketch "스케치11" against normal blind 10 contours A3 L26 L27 | L27 L26 A3 | A2 L2 L1 | L1 L2 A2 | A4 L22 L23 | L23 L22 A4 | A1 L6 L5 | L5 L6 A1 | A5 L19 L20 | L20 L19 A5 | A0 L9 L8 | L8 L9 A0 | A6 L15 L16 | L16 L15 A6 | A7 L13 L12 | L12 L13 A7
properties part number "connection_leg_ver2" material "PMMA 플라스틱"
